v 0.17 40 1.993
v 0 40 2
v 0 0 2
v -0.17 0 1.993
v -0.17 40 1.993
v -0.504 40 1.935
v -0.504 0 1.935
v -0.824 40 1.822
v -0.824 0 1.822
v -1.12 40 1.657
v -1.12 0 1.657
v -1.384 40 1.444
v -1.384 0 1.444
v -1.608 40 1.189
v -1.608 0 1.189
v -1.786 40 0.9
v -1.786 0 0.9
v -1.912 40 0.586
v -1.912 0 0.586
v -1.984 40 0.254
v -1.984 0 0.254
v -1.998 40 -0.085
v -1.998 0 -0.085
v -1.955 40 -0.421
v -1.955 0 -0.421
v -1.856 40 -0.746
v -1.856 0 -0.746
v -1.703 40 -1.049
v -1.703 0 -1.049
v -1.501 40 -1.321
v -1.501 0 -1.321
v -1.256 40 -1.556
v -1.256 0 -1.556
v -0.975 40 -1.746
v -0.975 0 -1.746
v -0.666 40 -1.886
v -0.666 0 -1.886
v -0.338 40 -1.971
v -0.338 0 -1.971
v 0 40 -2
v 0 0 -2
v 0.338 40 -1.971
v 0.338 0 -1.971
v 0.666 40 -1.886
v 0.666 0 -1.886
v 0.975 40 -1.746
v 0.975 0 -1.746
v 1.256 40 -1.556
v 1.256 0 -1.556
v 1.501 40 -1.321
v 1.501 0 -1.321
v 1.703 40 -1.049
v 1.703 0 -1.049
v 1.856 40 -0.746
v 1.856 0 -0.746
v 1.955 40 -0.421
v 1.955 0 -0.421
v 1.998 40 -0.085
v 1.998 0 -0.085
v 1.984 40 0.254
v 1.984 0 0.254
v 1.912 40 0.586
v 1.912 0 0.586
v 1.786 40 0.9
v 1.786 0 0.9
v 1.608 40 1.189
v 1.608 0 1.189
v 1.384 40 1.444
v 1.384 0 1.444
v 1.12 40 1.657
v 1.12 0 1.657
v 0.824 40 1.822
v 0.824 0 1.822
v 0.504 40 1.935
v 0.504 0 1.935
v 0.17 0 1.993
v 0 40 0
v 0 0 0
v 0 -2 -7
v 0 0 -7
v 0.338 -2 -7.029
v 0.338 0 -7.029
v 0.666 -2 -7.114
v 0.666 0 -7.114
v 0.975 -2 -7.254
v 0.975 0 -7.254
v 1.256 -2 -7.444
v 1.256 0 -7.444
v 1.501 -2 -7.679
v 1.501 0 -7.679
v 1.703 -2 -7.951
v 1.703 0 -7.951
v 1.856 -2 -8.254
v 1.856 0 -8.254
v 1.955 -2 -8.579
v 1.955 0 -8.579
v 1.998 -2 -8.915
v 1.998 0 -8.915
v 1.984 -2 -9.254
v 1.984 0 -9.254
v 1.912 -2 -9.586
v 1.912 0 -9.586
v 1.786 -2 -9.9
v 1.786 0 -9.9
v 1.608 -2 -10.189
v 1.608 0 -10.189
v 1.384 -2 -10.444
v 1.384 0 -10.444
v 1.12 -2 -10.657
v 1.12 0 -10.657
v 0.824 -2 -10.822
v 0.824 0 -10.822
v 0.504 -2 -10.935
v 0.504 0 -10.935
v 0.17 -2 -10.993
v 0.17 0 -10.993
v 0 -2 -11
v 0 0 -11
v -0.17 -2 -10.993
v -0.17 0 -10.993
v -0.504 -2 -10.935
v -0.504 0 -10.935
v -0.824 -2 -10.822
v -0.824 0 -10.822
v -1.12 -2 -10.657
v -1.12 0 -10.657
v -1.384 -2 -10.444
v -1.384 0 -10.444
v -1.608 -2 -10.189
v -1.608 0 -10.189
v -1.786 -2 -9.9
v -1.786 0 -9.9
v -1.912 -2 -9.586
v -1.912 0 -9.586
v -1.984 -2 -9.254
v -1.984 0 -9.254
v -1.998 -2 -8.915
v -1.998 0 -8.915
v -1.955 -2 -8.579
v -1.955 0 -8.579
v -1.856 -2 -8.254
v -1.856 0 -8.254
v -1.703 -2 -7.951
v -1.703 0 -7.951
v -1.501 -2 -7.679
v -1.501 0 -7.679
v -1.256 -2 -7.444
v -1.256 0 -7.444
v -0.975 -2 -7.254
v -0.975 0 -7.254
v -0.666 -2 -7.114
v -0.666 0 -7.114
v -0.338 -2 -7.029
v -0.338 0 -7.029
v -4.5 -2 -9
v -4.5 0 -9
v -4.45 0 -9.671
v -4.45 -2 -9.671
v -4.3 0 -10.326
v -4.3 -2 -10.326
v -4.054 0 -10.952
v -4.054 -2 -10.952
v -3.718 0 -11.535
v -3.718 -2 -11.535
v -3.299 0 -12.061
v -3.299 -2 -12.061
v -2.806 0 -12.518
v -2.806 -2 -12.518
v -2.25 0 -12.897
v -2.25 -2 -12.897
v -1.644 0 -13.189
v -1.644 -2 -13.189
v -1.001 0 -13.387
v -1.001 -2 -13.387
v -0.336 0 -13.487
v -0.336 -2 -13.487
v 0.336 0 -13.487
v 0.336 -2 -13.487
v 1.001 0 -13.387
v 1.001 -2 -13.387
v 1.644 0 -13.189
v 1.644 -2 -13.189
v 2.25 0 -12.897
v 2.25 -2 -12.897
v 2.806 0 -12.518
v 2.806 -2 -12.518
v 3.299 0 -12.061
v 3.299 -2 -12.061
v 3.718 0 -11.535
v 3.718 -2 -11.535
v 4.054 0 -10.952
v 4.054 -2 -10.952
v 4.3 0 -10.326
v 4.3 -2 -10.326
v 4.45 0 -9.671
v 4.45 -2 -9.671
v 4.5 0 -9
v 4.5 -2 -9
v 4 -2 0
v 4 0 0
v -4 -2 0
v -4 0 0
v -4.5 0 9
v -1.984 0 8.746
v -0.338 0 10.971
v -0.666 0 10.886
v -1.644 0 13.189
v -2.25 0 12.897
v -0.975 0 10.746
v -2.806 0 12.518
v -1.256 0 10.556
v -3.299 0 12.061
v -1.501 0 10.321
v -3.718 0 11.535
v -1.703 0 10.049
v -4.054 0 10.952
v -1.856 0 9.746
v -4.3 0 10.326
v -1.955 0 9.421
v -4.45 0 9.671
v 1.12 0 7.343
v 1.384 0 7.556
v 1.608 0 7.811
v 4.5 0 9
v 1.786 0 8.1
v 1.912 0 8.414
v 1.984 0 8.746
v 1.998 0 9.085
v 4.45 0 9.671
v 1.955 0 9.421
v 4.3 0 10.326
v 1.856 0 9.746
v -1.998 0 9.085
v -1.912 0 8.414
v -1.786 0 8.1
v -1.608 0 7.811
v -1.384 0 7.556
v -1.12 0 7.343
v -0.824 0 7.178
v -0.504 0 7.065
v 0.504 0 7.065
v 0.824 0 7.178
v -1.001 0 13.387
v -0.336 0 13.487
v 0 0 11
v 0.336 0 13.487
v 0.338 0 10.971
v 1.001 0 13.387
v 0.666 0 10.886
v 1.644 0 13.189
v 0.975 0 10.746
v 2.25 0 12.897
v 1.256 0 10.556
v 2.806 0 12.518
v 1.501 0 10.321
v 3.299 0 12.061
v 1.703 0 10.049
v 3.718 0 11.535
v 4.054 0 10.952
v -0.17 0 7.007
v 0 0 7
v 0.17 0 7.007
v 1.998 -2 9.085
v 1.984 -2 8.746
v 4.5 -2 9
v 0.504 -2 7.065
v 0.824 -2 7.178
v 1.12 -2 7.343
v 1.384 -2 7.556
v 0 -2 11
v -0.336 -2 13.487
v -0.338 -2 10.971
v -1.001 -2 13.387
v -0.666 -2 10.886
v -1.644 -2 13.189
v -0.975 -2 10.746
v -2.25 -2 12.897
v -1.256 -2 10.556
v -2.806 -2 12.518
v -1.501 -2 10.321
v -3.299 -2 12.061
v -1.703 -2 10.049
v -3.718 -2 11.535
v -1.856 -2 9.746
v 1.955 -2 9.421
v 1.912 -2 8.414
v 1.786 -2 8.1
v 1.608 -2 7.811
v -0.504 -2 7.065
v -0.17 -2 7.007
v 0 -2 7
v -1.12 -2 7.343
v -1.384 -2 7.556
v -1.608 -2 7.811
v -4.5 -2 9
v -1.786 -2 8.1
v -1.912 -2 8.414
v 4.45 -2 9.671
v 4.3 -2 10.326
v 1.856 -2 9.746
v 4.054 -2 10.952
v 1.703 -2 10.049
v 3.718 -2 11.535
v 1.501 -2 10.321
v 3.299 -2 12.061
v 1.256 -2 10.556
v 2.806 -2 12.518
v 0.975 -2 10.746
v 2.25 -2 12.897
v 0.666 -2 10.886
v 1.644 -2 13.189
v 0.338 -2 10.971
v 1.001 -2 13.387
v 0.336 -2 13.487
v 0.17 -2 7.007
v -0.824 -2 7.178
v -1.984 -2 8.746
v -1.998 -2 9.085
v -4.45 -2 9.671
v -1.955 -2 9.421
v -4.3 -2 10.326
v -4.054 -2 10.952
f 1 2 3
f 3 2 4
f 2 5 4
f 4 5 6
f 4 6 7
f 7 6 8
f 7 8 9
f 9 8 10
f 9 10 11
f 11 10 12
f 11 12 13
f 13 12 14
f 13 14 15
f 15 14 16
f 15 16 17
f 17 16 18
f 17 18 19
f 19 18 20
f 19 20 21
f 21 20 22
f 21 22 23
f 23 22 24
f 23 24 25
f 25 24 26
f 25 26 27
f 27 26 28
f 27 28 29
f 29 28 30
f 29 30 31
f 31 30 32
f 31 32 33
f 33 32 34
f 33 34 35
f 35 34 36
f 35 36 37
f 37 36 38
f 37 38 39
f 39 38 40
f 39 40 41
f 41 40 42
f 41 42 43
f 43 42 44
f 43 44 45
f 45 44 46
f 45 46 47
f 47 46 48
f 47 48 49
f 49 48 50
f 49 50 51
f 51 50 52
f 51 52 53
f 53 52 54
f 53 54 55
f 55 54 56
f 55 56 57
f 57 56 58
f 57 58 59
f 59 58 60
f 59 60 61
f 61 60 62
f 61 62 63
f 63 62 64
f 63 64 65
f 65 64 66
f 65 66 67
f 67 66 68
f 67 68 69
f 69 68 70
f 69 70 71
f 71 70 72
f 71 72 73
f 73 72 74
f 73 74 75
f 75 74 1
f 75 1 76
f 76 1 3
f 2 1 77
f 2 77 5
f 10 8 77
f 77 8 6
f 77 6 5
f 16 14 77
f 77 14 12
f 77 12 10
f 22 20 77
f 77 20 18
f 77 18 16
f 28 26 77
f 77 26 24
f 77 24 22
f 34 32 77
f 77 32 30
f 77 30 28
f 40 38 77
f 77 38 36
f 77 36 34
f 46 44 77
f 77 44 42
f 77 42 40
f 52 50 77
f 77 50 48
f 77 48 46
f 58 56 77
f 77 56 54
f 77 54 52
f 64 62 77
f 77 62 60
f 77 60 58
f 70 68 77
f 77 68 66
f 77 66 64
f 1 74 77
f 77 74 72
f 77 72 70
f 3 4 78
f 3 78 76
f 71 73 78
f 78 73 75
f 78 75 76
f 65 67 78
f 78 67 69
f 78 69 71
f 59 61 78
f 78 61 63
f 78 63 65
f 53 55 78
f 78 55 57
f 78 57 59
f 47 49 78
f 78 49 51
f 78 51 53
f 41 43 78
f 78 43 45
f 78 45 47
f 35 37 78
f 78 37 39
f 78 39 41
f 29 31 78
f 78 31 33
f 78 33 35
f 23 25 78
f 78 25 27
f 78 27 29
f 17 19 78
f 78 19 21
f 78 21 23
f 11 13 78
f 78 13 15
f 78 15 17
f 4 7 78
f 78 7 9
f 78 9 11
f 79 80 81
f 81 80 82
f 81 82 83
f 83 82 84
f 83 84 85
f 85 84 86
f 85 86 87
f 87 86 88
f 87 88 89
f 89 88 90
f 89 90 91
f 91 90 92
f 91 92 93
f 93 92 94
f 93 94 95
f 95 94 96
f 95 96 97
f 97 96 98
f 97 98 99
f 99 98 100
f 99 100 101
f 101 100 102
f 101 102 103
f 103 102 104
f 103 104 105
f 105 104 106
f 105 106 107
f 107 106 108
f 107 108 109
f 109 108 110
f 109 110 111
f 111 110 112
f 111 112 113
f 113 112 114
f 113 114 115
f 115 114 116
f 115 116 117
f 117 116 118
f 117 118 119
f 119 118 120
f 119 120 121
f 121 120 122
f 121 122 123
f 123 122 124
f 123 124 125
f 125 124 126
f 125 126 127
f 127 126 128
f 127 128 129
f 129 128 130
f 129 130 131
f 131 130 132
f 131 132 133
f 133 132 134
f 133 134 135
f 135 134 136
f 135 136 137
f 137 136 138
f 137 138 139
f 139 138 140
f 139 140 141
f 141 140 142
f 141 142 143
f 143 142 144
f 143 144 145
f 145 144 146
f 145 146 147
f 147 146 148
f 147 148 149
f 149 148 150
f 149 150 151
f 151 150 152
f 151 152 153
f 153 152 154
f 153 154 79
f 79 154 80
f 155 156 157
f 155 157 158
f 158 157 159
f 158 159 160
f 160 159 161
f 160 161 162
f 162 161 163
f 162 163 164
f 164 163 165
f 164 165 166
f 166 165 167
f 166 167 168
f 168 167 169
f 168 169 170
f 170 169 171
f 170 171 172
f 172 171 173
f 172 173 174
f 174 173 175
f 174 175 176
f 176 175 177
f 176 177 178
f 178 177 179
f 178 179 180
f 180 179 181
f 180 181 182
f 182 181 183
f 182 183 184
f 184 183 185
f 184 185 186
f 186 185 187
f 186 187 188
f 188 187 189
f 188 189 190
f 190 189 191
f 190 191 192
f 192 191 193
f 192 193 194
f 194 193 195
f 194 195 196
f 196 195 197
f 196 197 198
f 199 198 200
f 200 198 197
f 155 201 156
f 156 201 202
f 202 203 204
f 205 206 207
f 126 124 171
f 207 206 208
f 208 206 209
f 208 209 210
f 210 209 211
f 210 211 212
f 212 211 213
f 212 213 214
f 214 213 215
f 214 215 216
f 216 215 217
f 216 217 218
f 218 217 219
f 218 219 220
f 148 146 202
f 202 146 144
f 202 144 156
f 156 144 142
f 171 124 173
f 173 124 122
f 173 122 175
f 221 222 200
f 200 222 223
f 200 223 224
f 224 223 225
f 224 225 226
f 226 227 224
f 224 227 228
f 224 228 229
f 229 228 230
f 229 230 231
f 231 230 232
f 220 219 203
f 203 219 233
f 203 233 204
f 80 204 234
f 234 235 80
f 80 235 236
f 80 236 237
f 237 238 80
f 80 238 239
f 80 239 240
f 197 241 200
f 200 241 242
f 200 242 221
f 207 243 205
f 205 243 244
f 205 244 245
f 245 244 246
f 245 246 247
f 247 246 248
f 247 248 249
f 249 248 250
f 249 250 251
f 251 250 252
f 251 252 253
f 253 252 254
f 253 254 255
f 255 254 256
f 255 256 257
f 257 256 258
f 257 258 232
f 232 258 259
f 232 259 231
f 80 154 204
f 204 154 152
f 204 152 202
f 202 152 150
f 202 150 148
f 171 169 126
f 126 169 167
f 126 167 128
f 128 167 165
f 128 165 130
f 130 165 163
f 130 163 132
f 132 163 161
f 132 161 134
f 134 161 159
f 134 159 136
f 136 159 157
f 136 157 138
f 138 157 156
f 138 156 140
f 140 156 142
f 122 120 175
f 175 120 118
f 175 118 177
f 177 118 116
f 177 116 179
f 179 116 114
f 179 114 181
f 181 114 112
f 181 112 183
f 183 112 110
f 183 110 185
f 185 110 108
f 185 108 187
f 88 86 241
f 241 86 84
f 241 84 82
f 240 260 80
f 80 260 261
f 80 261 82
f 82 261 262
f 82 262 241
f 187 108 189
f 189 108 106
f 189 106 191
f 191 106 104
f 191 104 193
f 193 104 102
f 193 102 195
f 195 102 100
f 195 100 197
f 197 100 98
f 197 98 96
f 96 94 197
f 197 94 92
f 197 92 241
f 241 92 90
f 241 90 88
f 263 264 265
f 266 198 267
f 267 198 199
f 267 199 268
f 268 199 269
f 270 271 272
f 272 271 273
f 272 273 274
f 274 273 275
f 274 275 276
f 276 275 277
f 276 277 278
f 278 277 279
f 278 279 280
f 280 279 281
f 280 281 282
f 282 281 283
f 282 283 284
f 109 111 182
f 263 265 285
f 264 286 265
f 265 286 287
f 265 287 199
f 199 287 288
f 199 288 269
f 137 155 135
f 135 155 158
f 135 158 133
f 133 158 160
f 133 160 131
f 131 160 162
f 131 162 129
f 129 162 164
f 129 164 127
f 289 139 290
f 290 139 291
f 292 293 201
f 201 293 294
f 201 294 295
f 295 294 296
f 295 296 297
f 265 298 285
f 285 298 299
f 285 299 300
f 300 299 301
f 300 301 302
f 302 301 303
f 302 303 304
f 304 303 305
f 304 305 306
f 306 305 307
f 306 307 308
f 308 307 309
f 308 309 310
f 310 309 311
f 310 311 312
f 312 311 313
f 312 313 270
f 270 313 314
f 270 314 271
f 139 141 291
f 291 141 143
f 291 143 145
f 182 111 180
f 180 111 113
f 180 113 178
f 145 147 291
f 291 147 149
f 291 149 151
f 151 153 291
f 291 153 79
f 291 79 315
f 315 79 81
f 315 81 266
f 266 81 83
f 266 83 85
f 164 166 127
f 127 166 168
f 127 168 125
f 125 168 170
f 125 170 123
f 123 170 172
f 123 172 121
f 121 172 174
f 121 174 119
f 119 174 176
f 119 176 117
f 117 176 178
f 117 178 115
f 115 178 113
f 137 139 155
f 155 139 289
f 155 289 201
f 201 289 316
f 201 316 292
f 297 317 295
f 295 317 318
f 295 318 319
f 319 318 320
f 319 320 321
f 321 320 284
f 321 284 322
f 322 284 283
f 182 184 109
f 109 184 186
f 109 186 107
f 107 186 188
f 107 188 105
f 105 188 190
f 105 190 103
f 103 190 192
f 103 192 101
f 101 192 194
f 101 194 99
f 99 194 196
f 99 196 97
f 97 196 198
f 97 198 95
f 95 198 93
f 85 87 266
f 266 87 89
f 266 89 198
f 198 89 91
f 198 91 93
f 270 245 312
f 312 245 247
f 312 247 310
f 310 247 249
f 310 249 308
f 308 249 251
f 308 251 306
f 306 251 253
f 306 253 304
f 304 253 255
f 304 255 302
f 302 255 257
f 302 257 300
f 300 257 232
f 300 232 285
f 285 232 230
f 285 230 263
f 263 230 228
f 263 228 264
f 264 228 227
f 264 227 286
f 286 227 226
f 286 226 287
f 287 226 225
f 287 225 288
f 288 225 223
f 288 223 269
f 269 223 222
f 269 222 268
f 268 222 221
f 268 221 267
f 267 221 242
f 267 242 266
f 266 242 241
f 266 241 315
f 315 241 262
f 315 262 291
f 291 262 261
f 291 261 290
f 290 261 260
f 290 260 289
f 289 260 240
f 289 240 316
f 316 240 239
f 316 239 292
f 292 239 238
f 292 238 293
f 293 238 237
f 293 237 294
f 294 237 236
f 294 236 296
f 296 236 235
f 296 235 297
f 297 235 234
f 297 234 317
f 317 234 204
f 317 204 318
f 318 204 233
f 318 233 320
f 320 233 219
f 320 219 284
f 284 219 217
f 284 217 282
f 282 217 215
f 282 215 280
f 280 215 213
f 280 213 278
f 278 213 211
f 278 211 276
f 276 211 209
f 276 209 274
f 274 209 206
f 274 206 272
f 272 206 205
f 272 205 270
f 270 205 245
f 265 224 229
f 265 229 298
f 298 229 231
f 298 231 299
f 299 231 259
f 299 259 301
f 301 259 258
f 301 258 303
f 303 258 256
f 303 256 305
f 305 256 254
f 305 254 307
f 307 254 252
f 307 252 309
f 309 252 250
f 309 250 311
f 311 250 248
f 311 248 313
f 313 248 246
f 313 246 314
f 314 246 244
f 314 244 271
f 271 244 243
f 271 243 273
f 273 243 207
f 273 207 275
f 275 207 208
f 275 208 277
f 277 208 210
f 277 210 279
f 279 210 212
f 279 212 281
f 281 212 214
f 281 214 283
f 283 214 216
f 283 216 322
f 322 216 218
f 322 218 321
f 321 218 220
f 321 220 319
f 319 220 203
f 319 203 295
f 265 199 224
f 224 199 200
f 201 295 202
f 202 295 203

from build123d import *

# Parameters (mm, degrees)
SKETCH1_R           = 2
BOSS_EXTRUDE1_DEPTH = 40
SKETCH2_R           = 2
BOSS_EXTRUDE2_DEPTH = 2


with BuildPart() as part:
    # Sketch1 → Boss-Extrude1 (new body)
    with BuildSketch(Plane(origin=(0, 0, 0), x_dir=(1, 0, 0), z_dir=(0, 1, 0))):
        with Locations(Location((0, 0, 0), (0, 0, 270))):
            Circle(SKETCH1_R)
    extrude(amount=BOSS_EXTRUDE1_DEPTH)


with BuildPart() as body_2:
    # Sketch2 → Boss-Extrude2 (new body)
    with BuildSketch(Plane.XZ):
        with BuildLine():
            ThreePointArc((4.5, 9), (0, 13.5), (-4.5, 9))
            Line((-4.5, 9), (-4, 0))
            Line((-4, 0), (-4.5, -9))
            ThreePointArc((-4.5, -9), (0, -13.5), (4.5, -9))
            Line((4.5, -9), (4, 0))
            Line((4, 0), (4.5, 9))
        make_face()
        with Locations(Location((0, 9, 0), (0, 0, 270))):
            Circle(SKETCH2_R, mode=Mode.SUBTRACT)
        with Locations(Location((0, -9, 0), (0, 0, 270))):
            Circle(SKETCH2_R, mode=Mode.SUBTRACT)
    extrude(amount=BOSS_EXTRUDE2_DEPTH)


solid = Compound([part.part, body_2.part])
